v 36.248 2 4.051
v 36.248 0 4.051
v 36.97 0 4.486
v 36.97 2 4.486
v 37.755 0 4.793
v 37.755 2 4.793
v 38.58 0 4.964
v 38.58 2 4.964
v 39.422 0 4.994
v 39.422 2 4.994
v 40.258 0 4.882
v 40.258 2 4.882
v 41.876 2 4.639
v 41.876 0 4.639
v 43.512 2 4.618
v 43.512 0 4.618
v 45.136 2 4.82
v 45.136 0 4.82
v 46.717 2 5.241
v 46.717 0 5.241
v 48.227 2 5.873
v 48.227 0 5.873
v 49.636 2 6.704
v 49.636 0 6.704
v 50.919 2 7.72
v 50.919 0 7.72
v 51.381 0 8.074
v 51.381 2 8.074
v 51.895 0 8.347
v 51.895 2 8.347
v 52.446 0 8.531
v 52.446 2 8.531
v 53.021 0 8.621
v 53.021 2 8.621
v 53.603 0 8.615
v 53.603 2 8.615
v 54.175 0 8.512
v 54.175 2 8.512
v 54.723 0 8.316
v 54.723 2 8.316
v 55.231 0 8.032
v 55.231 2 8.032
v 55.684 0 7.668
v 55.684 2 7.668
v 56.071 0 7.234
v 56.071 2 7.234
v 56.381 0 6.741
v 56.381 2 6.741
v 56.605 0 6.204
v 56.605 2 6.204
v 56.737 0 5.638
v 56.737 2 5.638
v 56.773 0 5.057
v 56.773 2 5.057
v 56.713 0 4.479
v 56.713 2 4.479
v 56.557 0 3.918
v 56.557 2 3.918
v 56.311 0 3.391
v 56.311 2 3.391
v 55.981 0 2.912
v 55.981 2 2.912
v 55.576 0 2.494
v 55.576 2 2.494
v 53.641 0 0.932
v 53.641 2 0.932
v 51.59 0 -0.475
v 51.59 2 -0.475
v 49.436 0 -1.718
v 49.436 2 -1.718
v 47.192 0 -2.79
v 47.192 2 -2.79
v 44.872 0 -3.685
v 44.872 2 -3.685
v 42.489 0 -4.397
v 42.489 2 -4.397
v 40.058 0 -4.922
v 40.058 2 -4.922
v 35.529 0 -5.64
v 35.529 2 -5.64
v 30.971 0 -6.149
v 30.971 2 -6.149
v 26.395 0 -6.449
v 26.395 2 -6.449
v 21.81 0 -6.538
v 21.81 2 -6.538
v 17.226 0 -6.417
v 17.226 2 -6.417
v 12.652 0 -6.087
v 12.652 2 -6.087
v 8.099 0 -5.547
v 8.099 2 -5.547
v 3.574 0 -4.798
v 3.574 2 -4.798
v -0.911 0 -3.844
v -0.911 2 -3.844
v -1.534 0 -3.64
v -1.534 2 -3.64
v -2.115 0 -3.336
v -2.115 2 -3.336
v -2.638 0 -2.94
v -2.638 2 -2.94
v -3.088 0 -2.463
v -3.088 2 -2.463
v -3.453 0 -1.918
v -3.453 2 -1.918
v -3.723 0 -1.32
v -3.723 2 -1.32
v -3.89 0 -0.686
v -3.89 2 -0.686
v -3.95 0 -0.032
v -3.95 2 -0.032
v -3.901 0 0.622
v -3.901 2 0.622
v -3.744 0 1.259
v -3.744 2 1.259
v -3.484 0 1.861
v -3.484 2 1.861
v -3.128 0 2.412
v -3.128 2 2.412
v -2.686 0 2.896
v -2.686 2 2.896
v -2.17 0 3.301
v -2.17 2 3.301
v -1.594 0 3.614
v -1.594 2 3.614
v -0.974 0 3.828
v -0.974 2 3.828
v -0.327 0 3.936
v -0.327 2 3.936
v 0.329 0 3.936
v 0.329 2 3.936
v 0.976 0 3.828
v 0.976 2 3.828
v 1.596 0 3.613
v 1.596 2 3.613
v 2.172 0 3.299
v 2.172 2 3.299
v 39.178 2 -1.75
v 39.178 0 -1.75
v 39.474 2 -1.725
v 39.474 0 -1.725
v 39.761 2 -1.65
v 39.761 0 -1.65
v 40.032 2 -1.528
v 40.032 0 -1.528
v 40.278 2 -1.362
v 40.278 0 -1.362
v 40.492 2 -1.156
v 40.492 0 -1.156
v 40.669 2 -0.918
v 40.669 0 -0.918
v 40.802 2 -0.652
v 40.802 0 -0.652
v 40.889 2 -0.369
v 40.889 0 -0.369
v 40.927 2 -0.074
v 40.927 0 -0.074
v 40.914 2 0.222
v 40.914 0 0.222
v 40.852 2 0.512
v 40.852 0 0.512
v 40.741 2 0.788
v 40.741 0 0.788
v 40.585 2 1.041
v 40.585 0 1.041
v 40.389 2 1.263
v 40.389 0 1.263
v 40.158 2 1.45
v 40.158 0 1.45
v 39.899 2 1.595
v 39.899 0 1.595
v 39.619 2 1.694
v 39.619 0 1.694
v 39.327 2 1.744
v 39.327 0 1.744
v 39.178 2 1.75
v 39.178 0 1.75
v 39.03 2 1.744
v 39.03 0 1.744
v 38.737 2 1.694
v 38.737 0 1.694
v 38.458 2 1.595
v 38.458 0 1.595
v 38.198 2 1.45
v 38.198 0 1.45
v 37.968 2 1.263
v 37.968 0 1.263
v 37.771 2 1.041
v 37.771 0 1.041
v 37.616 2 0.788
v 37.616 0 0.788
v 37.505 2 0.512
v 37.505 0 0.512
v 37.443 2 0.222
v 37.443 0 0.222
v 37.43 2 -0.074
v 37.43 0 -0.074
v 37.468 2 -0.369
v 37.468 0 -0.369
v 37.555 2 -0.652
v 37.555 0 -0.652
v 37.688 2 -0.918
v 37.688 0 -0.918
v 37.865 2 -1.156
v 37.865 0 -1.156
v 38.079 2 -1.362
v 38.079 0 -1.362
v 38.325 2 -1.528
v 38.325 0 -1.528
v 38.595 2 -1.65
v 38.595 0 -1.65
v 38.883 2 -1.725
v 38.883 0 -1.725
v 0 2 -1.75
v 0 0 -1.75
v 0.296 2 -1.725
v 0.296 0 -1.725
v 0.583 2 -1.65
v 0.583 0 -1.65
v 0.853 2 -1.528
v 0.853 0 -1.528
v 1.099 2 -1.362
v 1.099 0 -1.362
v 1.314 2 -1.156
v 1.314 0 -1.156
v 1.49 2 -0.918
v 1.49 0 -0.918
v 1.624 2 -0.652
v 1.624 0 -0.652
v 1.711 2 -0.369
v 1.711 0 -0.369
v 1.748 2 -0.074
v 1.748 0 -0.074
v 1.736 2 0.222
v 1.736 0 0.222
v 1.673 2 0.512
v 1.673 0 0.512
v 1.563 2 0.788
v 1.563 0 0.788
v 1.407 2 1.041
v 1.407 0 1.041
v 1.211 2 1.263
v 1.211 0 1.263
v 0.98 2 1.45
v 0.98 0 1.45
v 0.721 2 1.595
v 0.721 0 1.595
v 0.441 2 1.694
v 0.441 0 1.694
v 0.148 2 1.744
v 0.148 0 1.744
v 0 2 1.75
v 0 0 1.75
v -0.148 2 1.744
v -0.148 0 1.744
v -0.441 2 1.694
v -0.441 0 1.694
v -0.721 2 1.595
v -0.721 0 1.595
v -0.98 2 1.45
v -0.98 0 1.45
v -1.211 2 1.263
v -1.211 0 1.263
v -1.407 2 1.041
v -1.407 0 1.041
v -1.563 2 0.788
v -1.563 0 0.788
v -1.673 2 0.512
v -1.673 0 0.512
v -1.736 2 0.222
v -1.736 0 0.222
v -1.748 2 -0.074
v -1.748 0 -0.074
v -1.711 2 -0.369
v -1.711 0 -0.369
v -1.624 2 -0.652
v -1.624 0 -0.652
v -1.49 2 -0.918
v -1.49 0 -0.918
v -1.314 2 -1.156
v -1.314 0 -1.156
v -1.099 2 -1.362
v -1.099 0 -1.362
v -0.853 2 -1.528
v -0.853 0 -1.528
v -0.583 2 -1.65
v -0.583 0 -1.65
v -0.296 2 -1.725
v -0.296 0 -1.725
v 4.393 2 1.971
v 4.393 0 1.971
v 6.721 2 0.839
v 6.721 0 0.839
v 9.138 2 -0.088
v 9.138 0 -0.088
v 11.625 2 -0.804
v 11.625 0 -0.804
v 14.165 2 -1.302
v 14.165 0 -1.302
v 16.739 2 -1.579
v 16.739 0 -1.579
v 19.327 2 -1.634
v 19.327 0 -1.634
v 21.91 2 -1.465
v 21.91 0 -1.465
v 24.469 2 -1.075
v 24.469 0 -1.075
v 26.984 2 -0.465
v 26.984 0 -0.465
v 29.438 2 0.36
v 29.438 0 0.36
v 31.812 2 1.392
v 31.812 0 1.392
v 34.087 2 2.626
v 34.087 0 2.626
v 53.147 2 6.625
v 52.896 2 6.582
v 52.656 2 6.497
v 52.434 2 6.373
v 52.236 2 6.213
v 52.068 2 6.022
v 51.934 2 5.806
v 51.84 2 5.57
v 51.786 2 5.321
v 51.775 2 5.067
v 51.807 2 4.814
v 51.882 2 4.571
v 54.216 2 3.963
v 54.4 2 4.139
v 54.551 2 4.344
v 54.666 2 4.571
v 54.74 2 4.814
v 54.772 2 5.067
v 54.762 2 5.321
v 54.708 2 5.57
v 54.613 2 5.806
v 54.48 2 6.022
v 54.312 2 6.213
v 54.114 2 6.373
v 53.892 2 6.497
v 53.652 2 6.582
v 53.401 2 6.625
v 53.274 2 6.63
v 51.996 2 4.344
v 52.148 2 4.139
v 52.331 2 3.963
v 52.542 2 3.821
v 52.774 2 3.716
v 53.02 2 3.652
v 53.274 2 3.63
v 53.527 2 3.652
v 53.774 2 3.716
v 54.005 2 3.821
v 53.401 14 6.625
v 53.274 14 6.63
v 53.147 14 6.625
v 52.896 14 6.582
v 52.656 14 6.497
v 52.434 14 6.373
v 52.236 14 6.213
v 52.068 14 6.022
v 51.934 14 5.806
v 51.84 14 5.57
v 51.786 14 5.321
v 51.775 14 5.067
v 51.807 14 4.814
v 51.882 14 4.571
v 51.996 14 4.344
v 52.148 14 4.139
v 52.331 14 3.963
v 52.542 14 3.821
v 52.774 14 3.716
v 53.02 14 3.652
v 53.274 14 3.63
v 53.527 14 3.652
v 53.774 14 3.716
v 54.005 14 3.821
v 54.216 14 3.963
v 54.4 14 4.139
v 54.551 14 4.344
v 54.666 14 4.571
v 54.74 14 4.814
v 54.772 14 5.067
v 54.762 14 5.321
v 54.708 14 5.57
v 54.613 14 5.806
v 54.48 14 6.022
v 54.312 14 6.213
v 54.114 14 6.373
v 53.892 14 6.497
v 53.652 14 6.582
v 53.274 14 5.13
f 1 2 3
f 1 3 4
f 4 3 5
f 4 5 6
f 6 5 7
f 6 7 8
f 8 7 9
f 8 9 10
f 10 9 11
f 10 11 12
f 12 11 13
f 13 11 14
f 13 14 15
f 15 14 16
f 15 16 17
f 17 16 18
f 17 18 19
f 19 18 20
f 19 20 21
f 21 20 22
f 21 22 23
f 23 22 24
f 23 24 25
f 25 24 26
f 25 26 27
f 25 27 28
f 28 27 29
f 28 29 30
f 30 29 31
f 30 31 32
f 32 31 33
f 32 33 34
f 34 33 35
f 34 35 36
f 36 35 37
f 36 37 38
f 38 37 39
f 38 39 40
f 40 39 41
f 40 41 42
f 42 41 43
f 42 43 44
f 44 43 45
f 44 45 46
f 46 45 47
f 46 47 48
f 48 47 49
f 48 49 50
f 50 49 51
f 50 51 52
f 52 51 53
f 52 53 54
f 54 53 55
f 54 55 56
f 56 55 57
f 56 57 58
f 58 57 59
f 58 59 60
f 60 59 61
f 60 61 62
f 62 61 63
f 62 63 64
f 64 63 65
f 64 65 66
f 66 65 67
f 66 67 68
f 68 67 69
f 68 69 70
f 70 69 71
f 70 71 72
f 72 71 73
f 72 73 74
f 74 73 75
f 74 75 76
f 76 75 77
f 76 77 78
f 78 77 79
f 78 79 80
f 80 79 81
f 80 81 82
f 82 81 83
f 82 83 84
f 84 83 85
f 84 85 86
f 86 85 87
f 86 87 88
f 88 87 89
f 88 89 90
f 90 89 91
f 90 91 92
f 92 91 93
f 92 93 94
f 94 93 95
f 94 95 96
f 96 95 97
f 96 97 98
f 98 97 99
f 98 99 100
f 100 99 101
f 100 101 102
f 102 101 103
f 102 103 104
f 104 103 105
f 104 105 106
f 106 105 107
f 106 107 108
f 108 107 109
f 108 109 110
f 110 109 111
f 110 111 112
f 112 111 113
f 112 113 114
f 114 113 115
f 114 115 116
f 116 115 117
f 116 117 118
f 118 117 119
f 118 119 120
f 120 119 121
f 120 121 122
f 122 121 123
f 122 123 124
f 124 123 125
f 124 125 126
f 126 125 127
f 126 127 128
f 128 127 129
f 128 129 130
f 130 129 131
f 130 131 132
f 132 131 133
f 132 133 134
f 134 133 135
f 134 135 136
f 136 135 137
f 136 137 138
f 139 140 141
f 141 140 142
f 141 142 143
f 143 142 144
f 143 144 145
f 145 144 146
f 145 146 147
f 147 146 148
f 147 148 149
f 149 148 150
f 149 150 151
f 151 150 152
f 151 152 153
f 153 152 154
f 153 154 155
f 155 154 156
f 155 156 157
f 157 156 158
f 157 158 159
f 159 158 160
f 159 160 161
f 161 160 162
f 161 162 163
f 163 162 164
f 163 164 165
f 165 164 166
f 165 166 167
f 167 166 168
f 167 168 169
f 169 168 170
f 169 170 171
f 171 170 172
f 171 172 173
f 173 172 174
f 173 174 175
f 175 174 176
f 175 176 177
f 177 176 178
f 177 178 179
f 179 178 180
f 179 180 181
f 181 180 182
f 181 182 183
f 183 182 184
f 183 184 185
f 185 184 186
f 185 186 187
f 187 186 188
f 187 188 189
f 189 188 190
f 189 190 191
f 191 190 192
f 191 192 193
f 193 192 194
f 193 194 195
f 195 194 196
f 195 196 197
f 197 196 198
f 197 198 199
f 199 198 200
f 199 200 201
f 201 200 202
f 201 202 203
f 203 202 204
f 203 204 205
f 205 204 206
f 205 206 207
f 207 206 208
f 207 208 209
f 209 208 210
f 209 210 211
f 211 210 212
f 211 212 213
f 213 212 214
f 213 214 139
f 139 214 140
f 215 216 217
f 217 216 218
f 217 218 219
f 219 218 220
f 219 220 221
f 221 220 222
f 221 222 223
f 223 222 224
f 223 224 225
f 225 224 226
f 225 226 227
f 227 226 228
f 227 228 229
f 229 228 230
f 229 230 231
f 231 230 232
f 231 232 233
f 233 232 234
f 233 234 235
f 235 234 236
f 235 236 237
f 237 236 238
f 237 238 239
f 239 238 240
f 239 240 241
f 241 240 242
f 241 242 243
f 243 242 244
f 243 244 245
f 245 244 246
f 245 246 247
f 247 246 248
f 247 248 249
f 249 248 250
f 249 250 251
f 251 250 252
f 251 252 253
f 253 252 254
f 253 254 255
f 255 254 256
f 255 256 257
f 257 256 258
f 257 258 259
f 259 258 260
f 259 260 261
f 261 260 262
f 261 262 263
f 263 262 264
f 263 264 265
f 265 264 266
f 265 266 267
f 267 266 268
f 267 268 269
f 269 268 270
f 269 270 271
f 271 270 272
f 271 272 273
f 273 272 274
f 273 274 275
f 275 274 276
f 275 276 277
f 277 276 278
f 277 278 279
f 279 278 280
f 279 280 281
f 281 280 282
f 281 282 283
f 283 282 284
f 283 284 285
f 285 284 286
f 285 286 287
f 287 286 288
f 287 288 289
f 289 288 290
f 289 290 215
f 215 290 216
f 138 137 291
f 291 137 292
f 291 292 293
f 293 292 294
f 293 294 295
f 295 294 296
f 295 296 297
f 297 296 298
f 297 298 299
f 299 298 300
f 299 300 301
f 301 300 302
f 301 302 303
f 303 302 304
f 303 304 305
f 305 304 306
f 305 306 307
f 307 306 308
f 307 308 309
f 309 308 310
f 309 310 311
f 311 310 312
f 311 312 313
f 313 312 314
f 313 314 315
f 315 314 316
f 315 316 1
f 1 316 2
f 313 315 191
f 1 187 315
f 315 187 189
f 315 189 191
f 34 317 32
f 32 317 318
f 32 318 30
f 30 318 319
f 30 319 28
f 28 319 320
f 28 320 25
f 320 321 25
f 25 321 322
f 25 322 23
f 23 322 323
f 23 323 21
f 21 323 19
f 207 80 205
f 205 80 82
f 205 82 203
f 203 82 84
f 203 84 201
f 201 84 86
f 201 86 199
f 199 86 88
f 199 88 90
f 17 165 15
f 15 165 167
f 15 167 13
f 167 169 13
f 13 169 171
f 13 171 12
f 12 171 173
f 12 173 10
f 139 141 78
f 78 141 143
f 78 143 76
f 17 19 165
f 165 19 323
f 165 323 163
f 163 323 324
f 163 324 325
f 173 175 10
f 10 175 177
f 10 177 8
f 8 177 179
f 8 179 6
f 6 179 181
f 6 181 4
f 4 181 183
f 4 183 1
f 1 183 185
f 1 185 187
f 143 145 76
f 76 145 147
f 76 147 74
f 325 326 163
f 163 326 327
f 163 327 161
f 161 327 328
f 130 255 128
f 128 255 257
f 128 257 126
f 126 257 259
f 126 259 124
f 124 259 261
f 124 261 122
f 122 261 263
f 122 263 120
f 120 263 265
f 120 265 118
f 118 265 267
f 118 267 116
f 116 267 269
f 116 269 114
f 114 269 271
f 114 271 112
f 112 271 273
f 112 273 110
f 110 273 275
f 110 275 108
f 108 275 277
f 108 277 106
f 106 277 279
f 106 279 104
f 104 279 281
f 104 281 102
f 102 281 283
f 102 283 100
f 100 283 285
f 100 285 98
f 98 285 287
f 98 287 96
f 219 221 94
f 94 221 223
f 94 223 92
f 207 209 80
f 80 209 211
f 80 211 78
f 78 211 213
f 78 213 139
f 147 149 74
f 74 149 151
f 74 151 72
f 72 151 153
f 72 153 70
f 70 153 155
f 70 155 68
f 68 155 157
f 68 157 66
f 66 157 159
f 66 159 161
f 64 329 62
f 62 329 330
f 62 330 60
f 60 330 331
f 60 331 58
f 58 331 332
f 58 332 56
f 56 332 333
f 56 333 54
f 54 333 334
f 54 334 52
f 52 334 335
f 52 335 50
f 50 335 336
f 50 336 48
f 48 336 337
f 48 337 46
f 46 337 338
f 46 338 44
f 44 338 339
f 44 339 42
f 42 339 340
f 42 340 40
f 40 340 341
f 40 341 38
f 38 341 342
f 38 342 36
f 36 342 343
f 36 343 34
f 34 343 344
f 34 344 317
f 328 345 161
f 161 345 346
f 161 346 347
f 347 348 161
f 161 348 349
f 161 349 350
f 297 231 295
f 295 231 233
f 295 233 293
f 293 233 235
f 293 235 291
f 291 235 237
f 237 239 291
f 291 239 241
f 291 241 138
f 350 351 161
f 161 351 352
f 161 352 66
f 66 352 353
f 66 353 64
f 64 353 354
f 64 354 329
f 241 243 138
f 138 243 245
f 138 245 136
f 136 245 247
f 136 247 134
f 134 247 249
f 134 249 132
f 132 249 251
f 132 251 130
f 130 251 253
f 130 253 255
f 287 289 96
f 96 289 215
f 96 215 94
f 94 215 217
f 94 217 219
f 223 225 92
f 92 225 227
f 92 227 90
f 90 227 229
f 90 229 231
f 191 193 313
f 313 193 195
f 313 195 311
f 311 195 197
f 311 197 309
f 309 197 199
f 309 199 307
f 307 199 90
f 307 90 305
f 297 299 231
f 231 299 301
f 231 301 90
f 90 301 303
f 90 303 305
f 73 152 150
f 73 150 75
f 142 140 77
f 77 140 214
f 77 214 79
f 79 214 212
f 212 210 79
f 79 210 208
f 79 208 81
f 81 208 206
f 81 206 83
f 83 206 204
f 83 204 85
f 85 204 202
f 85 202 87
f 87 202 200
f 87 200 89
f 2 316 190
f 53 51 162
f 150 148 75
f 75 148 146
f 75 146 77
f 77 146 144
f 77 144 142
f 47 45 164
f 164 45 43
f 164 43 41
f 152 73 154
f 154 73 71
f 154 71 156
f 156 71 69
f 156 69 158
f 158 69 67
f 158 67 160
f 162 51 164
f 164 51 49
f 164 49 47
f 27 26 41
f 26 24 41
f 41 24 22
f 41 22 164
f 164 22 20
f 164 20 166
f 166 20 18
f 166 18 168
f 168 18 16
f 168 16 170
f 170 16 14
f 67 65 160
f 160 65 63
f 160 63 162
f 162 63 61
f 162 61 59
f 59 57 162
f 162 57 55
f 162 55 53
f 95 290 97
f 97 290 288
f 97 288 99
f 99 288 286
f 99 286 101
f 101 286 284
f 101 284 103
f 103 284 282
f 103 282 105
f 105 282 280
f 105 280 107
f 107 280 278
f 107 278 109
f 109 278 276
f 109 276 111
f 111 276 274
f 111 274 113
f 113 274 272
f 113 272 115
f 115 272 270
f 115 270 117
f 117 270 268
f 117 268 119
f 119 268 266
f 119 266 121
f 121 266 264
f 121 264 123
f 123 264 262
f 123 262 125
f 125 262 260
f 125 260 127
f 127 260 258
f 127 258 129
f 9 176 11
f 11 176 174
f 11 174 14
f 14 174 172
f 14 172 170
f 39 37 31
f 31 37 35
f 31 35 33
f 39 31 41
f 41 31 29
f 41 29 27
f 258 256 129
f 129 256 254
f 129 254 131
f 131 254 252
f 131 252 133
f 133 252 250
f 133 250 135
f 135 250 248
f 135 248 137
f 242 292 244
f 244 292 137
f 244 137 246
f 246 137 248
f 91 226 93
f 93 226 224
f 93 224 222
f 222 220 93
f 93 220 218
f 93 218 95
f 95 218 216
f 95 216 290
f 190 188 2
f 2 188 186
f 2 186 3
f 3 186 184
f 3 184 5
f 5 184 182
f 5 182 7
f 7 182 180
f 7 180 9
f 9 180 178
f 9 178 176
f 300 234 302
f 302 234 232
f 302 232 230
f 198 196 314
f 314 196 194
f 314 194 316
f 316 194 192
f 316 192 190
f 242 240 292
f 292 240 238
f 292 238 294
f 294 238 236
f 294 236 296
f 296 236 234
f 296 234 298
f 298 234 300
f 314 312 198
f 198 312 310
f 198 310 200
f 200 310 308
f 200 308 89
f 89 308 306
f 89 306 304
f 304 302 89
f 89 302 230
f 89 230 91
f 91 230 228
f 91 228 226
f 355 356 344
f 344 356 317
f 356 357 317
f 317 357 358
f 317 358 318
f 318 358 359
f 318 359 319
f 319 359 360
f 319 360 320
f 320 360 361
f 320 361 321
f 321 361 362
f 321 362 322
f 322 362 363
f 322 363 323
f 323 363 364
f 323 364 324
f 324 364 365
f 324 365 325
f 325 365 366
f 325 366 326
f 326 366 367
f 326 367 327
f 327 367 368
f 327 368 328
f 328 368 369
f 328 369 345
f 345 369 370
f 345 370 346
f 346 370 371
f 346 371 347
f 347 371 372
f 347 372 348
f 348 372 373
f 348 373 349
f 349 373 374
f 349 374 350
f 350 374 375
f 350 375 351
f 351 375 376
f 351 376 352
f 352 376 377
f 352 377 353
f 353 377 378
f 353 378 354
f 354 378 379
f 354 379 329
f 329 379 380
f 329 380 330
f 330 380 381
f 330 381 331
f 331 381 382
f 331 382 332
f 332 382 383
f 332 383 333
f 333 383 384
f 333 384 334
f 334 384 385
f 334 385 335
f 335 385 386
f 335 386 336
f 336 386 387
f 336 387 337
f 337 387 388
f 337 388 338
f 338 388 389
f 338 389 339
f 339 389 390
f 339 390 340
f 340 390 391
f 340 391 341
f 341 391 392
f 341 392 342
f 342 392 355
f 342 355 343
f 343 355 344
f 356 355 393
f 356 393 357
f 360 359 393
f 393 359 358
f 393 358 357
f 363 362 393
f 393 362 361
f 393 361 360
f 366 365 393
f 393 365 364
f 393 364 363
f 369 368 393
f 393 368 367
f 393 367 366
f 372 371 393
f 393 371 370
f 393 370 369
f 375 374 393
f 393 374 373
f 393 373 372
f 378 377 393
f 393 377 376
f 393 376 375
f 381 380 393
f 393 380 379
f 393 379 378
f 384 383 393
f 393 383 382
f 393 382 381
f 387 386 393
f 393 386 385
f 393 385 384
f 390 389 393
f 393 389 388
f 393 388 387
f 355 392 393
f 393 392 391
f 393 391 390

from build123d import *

# Parameters (mm, degrees)
SKETCH1_R           = 1.75
SKETCH1_R_2         = 3.5
BOSS_EXTRUDE3_DEPTH = 2
SKETCH3_R           = 1.5
BOSS_EXTRUDE4_DEPTH = 12


with BuildPart() as part:
    # Sketch1 → Boss-Extrude3 (new body)
    # profile 1 of 2: a face of its own
    with BuildSketch(Plane(origin=(0, 0, 0), x_dir=(1, 0, 0), z_dir=(0, 1, 0))):
        with BuildLine():
            ThreePointArc((40.05780493, 4.92208645), (19.51761867, 6.504088301), (-0.91087774, 3.843540262))
            ThreePointArc((-0.91087774, 3.843540262), (-3.626704772, -1.56509185), (2.171657179, -3.299455273))
            ThreePointArc((2.171657179, -3.299455273), (19.326940327, 1.634092765), (36.247955143, -4.051229892))
            ThreePointArc((36.247955143, -4.051229892), (38.163769521, -4.895969245), (40.257507506, -4.882165276))
            ThreePointArc((40.257507506, -4.882165276), (45.933967375, -5.003120525), (50.919436714, -7.720089844))
            ThreePointArc((50.919436714, -7.720089844), (50.66068815, -2.80185284), (55.57610439, -2.494136696))
            ThreePointArc((55.57610439, -2.494136696), (48.324550131, 2.276108307), (40.05780493, 4.92208645))
        make_face()
        with Locations(Location((0, 0, 0), (0, 0, 270))):
            Circle(SKETCH1_R, mode=Mode.SUBTRACT)
        with Locations(Location((39.178405, 0, 0), (0, 0, 270))):
            Circle(SKETCH1_R, mode=Mode.SUBTRACT)
    # profile 2 of 2: a face of its own
    with BuildSketch(Plane(origin=(0, 0, 0), x_dir=(1, 0, 0), z_dir=(0, 1, 0))):
        with Locations((53.273794312, -5.13030215)):
            Circle(SKETCH1_R_2)
    extrude(amount=BOSS_EXTRUDE3_DEPTH)

    # Sketch3 → Boss-Extrude4 (add)
    with BuildSketch(Plane(origin=(0, 2, 0), x_dir=(1, 0, 0), z_dir=(0, 1, 0))):
        with Locations(Location((53.273794312, -5.13030215, 0), (0, 0, 270))):
            Circle(SKETCH3_R)
    extrude(amount=BOSS_EXTRUDE4_DEPTH)


solid = part.part
